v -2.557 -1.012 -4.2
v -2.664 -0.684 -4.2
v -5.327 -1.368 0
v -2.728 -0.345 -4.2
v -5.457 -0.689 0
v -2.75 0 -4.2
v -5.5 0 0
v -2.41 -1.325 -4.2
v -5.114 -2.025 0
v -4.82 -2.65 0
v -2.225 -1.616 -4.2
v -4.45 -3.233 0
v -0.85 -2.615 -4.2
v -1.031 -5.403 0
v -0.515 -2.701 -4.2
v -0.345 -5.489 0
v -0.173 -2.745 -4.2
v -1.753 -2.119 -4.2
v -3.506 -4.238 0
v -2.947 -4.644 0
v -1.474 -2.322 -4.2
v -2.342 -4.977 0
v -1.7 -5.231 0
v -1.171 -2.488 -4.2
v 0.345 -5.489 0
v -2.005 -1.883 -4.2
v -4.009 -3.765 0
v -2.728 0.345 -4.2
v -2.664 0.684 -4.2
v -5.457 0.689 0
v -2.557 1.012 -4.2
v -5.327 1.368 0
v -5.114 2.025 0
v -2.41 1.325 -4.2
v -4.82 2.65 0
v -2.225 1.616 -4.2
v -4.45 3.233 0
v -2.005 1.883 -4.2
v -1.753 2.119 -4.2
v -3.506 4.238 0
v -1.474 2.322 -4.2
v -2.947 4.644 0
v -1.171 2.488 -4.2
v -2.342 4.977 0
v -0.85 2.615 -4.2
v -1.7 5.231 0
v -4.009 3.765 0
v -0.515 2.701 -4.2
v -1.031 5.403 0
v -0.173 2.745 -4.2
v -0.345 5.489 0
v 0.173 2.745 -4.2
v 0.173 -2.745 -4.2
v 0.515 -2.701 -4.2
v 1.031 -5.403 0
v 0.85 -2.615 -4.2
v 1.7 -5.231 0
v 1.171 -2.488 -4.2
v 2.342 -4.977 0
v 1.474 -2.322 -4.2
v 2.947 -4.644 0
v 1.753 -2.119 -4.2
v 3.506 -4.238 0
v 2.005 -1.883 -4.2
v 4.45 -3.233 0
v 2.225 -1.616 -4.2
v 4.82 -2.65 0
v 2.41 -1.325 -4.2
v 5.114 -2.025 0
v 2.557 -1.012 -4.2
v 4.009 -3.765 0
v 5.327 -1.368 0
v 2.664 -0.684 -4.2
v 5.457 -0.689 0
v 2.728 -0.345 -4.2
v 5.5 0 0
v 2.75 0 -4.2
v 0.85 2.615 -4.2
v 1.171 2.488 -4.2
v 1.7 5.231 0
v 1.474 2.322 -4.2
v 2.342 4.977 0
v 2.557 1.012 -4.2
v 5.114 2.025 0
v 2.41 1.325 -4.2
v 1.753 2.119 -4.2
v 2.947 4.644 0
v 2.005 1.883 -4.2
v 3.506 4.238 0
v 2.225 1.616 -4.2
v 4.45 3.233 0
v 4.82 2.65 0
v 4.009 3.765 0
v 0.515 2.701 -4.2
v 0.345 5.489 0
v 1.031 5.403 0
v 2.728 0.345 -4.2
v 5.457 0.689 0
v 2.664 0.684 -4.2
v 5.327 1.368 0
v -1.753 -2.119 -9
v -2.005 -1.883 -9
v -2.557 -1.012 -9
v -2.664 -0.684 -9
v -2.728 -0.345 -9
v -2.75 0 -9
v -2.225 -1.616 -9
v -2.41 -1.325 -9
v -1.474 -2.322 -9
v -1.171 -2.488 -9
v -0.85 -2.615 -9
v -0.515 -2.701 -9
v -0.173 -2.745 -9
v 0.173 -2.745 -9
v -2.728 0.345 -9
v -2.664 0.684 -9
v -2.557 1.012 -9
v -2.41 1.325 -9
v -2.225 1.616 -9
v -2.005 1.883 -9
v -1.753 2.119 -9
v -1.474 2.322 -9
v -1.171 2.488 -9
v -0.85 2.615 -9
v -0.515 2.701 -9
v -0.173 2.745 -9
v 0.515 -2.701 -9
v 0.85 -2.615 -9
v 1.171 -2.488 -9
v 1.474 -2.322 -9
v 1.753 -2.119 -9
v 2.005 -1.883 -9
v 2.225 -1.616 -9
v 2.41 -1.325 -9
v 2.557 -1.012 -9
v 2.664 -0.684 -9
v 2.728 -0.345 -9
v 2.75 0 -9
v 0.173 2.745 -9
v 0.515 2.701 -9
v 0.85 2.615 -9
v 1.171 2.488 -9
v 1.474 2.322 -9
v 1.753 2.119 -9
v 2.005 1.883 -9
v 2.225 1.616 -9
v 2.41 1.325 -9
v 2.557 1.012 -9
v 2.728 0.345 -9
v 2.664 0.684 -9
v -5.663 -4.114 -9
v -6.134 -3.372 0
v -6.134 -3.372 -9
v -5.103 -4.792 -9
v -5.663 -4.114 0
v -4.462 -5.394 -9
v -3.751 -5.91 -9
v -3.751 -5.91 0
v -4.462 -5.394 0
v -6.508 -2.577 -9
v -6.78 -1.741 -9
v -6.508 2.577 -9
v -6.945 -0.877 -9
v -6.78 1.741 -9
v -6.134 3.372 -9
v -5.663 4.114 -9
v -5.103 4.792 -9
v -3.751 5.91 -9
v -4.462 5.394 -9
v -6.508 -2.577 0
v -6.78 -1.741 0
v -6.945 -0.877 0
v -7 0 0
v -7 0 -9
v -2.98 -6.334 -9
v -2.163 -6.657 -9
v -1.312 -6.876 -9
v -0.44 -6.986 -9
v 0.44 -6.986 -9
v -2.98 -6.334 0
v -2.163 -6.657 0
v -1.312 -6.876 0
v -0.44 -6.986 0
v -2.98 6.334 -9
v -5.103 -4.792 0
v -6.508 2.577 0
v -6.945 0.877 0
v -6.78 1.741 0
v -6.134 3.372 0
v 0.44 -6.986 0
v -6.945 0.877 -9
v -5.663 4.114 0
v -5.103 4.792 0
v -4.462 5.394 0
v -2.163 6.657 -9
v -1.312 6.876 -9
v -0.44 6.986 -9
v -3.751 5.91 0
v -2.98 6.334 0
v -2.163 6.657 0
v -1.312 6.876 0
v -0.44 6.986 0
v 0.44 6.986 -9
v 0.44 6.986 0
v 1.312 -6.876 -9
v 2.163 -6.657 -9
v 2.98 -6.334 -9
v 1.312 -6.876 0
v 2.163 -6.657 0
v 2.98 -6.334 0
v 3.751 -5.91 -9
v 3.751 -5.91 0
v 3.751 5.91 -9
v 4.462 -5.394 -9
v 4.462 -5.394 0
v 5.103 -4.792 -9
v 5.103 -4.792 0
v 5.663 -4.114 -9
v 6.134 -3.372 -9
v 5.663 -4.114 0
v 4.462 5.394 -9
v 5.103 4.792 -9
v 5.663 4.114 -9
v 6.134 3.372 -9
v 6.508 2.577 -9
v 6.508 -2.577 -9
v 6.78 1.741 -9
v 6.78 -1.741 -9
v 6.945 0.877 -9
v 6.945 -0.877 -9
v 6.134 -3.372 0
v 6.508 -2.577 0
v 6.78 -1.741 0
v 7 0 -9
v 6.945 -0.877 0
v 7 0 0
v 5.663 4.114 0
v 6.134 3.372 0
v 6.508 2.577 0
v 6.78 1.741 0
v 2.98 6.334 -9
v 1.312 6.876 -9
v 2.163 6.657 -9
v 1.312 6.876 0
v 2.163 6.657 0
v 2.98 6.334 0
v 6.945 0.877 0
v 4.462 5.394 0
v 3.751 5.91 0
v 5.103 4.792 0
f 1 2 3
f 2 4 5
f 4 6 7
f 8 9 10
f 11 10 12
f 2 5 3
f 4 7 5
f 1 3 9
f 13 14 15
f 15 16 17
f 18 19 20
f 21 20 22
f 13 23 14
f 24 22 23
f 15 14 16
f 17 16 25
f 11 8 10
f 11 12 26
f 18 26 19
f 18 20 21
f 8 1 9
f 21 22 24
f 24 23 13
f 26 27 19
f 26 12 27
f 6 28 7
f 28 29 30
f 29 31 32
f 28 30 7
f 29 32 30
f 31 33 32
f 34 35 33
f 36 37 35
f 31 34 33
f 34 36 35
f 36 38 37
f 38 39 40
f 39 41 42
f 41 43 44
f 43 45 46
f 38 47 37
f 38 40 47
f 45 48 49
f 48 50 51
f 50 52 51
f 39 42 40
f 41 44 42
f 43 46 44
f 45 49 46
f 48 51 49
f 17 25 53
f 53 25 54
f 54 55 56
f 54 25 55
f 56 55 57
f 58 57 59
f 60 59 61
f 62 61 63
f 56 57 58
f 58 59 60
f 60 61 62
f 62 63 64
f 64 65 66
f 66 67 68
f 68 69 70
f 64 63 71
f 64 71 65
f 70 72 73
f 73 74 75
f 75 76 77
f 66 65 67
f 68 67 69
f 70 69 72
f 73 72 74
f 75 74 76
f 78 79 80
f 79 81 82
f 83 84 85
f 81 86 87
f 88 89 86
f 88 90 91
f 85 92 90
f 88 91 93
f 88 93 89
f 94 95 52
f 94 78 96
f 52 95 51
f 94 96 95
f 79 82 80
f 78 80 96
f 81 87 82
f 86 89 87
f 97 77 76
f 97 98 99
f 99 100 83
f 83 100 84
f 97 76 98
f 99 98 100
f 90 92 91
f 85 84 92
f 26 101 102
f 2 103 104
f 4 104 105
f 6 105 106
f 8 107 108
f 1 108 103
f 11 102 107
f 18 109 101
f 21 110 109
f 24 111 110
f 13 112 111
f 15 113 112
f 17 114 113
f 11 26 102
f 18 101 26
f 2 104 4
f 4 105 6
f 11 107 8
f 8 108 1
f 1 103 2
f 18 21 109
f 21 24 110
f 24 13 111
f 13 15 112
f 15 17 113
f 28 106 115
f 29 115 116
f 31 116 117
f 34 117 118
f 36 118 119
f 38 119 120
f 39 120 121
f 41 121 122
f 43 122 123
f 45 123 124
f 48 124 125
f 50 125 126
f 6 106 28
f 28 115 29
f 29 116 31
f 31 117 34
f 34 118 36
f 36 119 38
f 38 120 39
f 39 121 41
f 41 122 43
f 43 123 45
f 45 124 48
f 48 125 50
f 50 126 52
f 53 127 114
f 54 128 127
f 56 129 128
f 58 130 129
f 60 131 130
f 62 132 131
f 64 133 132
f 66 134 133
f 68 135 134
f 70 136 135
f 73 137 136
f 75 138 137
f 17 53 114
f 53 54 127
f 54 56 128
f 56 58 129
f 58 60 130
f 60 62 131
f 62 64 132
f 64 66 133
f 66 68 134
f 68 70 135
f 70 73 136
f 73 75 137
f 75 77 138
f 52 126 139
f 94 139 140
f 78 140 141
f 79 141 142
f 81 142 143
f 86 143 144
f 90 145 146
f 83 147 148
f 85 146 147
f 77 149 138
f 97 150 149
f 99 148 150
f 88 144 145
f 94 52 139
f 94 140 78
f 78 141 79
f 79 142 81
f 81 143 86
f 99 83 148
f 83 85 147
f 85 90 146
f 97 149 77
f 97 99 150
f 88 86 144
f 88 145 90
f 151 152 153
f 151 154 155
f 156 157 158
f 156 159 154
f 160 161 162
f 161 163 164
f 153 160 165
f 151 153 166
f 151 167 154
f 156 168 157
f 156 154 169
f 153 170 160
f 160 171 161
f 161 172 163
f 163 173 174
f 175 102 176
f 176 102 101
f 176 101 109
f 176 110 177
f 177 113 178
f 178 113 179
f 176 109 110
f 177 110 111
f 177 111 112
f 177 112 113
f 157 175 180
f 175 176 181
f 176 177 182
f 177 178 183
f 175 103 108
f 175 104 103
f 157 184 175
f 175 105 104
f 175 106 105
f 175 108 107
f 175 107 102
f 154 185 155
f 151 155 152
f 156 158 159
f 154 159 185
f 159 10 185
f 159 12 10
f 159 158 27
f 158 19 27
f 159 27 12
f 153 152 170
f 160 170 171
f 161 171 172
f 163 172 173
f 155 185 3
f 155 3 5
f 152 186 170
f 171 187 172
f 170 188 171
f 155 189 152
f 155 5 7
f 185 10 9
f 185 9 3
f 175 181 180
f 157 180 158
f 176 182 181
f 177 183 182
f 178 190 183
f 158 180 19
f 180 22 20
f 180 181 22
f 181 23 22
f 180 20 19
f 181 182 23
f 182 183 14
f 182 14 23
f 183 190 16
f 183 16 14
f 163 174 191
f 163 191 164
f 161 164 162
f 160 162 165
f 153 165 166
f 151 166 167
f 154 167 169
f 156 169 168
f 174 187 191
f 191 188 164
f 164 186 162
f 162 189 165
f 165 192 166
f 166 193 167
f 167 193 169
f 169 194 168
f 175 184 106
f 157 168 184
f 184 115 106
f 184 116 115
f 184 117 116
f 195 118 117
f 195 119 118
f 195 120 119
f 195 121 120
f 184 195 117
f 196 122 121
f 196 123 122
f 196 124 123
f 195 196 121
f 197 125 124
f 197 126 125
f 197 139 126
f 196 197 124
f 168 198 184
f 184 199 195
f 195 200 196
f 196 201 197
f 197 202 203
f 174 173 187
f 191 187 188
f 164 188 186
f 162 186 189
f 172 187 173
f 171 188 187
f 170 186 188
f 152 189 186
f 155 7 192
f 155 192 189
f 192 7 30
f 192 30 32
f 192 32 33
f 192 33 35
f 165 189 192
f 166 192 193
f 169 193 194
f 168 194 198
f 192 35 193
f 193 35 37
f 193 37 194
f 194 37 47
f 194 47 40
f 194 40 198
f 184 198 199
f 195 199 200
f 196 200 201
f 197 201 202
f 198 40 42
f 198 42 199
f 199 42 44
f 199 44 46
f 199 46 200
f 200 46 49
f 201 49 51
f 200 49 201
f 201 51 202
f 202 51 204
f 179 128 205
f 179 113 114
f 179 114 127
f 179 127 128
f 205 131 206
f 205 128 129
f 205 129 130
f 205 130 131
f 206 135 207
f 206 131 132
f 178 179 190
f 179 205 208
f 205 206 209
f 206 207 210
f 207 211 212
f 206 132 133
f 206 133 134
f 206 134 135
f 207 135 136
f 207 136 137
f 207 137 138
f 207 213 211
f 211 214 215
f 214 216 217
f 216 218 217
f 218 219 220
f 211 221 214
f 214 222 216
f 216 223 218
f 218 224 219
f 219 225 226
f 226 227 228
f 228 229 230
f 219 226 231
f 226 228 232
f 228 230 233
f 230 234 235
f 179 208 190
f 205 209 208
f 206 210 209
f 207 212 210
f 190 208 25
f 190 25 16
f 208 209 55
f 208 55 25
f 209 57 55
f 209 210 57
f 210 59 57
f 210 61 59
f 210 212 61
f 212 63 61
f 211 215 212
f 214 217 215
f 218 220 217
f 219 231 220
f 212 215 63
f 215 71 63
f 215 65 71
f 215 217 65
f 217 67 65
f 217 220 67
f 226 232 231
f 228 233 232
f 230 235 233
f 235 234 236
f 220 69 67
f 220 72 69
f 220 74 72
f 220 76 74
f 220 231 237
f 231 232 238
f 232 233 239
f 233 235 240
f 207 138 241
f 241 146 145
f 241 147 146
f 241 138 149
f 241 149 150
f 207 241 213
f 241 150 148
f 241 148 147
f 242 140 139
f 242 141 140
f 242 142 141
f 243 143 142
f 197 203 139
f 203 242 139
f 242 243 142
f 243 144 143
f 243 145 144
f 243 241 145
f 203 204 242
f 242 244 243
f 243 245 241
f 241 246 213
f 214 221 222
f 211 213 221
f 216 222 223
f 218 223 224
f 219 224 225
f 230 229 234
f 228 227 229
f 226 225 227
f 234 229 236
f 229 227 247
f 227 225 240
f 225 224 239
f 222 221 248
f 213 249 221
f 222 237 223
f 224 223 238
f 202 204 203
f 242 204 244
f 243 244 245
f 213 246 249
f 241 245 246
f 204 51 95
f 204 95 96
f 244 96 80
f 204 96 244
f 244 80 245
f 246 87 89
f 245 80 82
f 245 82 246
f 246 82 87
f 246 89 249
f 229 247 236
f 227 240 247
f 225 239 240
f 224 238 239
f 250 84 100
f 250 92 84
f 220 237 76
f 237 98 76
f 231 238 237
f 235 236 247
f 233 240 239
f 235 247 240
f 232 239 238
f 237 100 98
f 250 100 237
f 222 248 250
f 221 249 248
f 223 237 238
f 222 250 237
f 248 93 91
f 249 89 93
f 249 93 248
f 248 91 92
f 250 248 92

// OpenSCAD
$fn = 50;


difference() {
	union() {
		translate(v = [0, 0, -9.0000000000]) {
			cylinder(h = 9, r = 7.0000000000);
		}
	}
	union() {
		translate(v = [0, 0, 0]) {
			rotate(a = [0, 0, 0]) {
				difference() {
					union() {
						translate(v = [0, 0, -12.0000000000]) {
							cylinder(h = 12, r = 2.2500000000);
						}
						translate(v = [0, 0, -4.2000000000]) {
							cylinder(h = 4.2000000000, r1 = 2.7500000000, r2 = 5.5000000000);
						}
						translate(v = [0, 0, -12.0000000000]) {
							cylinder(h = 12, r = 2.7500000000);
						}
						translate(v = [0, 0, -12.0000000000]) {
							cylinder(h = 12, r = 2.2500000000);
						}
					}
					union();
				}
			}
		}
	}
}
